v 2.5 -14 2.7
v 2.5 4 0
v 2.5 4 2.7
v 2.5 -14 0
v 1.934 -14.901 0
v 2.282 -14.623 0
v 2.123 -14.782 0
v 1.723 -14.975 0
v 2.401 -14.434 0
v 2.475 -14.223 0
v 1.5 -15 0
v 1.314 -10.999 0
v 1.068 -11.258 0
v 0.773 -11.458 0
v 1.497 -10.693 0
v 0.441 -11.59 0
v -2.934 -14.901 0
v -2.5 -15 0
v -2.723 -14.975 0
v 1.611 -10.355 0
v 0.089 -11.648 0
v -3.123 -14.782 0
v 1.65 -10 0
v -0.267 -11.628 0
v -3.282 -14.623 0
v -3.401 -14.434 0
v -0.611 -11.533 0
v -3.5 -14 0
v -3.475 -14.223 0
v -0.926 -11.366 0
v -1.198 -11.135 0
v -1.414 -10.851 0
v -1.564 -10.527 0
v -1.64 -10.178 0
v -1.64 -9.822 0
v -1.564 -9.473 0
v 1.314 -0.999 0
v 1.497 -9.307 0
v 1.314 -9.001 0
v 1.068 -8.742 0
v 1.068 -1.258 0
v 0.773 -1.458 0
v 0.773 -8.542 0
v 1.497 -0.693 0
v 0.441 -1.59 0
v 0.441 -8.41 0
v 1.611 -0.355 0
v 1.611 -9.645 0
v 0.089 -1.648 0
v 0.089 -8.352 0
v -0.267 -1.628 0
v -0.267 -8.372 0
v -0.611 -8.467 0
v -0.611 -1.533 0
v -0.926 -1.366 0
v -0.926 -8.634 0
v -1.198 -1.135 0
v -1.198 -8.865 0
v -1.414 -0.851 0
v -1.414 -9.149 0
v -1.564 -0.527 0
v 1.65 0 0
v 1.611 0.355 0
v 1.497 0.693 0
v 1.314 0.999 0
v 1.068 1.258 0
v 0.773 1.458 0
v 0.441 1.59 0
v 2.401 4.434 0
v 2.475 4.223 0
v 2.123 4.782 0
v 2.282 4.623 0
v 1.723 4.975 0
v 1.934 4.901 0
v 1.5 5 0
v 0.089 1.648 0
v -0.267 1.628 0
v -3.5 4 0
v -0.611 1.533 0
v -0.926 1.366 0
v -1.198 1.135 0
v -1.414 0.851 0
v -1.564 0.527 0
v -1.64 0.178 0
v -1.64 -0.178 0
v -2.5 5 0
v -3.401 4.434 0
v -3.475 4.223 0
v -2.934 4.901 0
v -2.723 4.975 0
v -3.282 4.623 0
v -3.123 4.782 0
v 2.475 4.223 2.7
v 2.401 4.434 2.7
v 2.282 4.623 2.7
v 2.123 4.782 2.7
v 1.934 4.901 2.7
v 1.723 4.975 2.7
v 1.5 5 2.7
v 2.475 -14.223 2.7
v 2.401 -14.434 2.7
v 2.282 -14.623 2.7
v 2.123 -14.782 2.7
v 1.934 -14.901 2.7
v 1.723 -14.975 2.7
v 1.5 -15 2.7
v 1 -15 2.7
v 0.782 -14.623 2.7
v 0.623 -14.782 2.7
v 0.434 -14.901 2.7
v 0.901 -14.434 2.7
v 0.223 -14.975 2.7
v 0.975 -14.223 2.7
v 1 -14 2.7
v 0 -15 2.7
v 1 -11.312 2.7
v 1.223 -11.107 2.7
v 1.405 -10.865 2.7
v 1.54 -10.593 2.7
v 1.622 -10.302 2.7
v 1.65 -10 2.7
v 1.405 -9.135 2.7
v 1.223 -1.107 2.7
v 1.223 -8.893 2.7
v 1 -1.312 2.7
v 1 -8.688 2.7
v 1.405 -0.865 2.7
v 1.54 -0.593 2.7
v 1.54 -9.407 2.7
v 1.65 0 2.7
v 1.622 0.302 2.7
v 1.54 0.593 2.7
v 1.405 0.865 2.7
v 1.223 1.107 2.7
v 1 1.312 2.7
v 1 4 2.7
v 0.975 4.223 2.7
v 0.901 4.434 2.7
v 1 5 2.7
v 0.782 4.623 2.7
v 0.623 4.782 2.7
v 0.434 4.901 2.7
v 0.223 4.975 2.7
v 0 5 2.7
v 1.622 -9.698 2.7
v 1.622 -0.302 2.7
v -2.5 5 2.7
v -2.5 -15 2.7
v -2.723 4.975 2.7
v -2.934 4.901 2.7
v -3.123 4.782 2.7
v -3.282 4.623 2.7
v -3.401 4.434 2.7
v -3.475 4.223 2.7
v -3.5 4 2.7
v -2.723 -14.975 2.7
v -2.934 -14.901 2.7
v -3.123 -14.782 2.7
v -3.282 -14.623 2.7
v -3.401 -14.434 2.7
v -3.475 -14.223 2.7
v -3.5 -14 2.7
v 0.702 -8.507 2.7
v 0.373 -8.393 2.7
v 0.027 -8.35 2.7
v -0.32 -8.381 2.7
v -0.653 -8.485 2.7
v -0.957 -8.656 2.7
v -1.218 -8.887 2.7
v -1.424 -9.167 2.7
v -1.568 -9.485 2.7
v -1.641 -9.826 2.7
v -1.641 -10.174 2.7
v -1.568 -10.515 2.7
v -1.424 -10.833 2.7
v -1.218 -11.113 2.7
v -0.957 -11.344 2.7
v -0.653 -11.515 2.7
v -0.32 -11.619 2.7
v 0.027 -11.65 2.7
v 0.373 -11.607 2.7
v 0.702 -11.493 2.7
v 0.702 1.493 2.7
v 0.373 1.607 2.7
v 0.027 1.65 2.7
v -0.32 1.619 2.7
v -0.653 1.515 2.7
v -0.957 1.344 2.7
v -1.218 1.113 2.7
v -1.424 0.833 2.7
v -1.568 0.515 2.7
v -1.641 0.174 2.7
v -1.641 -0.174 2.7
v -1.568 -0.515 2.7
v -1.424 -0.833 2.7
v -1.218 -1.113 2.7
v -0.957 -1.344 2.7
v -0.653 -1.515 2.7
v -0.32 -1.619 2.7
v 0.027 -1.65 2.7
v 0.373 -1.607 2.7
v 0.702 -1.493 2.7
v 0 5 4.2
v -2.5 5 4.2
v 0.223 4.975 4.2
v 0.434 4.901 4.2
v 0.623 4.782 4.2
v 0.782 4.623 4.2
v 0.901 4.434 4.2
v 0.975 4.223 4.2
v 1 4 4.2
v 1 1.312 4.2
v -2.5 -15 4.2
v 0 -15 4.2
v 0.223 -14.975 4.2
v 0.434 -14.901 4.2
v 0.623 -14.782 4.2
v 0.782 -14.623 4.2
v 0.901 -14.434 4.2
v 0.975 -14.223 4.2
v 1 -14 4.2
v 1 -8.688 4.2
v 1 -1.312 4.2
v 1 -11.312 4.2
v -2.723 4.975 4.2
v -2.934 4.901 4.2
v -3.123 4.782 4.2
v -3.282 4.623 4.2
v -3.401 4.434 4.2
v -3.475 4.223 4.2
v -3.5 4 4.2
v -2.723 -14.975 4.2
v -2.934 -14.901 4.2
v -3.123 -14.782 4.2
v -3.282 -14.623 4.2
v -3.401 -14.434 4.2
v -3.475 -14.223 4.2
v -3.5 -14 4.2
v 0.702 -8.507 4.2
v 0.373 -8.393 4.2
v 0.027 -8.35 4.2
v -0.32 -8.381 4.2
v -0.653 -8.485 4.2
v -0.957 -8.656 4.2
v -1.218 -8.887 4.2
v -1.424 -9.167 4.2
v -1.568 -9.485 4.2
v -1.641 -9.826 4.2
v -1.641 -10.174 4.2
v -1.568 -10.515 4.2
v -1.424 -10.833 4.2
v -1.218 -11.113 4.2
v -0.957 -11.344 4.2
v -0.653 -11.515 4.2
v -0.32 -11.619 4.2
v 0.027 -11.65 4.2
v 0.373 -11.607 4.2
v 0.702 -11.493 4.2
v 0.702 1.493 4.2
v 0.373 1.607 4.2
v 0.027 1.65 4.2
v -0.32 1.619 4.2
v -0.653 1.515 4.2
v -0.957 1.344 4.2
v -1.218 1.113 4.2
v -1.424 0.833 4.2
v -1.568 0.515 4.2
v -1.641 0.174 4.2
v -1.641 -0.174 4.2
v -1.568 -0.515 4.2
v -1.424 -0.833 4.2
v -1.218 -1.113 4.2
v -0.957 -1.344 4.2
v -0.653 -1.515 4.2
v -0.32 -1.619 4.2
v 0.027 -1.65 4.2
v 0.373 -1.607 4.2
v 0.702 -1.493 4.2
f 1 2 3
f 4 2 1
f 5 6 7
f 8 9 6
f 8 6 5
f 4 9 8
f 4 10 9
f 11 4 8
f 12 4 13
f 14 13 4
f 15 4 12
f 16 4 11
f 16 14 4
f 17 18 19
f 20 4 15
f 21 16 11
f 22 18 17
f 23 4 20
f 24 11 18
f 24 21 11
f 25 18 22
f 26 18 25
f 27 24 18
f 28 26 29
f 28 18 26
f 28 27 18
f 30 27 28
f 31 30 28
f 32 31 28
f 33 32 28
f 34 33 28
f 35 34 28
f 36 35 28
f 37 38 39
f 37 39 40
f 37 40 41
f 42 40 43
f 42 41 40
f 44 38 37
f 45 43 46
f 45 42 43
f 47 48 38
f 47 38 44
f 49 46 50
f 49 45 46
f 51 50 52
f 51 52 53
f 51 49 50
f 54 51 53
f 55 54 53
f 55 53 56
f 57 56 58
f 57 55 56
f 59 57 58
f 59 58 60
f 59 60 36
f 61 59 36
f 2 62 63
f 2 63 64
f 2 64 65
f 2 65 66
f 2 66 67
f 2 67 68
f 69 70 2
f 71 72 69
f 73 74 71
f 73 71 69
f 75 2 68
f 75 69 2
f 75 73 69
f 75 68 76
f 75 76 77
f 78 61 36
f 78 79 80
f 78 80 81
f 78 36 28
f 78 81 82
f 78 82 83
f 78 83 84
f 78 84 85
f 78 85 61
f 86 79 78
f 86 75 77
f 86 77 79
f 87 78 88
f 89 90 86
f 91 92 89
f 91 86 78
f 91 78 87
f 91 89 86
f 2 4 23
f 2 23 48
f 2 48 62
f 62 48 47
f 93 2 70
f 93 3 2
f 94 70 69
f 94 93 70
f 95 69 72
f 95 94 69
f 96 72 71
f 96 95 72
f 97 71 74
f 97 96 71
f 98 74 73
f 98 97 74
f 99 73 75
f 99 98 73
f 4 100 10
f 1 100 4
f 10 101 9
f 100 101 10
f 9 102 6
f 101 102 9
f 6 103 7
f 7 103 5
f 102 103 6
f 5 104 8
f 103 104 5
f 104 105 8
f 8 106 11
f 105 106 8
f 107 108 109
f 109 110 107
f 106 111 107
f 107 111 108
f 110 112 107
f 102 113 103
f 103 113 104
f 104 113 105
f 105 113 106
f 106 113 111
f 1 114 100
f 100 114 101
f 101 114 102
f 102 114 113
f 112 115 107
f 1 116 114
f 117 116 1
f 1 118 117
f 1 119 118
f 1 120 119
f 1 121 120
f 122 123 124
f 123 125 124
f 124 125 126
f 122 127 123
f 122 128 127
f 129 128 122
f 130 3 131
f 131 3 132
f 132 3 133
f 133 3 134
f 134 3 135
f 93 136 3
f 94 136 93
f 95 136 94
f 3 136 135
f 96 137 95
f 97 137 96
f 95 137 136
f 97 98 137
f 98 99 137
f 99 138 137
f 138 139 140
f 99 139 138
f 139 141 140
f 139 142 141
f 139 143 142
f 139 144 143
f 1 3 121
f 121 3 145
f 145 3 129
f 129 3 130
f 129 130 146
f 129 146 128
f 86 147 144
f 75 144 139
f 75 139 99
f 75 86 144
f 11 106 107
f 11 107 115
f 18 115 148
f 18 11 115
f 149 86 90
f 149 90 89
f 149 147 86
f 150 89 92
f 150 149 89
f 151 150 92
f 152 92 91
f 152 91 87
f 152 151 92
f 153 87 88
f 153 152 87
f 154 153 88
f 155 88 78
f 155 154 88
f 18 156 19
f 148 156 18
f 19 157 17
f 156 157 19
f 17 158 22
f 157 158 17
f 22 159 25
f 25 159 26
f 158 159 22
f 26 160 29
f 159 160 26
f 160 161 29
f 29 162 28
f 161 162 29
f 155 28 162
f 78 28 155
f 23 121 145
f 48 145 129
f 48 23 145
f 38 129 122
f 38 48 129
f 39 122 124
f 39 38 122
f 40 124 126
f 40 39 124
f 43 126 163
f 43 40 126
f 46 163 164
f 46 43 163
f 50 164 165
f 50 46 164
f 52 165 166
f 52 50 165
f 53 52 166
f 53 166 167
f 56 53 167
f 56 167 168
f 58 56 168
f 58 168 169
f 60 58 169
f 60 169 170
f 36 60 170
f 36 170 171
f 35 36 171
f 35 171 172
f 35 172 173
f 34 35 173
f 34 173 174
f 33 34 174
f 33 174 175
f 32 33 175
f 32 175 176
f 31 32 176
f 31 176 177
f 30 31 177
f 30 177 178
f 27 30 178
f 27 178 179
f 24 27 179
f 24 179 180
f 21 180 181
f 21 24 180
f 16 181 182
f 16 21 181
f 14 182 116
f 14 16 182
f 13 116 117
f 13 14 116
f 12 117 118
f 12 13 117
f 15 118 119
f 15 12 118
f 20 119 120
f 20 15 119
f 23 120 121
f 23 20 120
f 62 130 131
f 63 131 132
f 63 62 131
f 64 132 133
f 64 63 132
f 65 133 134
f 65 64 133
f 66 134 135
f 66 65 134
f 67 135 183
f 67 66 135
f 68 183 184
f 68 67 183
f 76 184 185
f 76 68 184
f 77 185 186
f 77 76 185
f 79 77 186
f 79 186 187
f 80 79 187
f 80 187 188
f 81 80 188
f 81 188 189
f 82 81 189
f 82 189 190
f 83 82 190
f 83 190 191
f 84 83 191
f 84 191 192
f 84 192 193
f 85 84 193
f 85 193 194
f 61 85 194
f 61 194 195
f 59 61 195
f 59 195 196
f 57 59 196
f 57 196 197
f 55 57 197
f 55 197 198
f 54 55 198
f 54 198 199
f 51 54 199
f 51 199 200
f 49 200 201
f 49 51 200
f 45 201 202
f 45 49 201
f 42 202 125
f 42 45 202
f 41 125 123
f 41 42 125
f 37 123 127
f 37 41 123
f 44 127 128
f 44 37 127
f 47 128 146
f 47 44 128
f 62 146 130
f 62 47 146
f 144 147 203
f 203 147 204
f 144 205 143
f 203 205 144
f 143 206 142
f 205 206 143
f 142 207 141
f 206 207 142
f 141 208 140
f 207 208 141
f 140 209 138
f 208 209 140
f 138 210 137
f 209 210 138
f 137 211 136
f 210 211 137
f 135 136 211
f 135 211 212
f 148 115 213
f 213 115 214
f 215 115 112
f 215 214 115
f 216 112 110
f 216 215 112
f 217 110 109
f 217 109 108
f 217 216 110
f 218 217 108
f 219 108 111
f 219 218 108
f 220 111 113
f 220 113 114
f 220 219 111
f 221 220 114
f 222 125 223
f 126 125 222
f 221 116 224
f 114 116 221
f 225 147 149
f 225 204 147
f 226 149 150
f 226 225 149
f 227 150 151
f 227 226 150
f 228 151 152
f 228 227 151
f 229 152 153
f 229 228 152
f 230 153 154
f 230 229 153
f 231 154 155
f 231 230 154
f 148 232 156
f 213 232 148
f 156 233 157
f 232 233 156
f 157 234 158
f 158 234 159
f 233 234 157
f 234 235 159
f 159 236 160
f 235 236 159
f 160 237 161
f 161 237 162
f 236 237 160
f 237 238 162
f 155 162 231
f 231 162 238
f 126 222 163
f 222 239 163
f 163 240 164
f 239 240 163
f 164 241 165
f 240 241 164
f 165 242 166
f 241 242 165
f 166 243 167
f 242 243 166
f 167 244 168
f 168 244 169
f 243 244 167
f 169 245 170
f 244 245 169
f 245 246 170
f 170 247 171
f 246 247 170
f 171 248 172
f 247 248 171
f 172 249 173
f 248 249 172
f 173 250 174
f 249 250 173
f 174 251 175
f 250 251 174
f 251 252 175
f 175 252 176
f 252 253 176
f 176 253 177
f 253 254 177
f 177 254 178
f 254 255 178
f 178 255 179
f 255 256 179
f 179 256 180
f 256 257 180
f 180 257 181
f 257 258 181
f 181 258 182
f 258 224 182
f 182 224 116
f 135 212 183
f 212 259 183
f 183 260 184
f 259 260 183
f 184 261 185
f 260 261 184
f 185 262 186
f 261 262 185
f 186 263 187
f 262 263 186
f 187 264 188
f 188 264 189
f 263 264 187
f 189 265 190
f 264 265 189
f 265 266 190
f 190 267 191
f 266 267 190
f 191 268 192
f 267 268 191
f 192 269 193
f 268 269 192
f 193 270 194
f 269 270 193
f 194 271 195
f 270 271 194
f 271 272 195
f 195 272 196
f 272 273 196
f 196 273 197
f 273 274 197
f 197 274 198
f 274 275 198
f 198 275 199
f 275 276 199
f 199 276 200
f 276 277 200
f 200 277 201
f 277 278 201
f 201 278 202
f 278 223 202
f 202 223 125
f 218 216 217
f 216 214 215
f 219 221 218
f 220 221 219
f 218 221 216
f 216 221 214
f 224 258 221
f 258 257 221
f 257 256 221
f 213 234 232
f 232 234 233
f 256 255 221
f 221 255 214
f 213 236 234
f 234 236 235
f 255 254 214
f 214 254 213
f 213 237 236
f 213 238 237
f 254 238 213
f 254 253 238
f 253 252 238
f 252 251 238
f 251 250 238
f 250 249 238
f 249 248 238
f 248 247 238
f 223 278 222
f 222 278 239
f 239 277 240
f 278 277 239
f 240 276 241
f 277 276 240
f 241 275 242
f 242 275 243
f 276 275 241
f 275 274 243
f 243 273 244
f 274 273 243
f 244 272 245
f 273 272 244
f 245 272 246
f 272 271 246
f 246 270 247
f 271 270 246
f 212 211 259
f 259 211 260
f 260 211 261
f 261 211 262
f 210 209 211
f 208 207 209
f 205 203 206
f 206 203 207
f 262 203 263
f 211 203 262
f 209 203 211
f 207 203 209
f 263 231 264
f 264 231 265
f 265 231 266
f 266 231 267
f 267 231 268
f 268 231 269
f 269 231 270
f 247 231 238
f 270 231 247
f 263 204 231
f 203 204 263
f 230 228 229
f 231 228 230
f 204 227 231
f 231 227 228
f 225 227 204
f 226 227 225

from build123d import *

# Parameters (mm, degrees)
SKETCH_W     = 6
SKETCH_H     = 20
SKETCH_R     = 1.65
PAD_DEPTH    = 2.7
SKETCH001_W  = 4.5
SKETCH001_H  = 20
PAD001_DEPTH = 1.5
SKETCH002_R  = 1.65
POCKET_DEPTH = 4.201
FILLET_R     = 1


with BuildPart() as part:
    # Sketch → Pad (new body)
    with BuildSketch(Plane.XY):
        with Locations((-0.5, -5)):
            Rectangle(SKETCH_W, SKETCH_H)
        Circle(SKETCH_R, mode=Mode.SUBTRACT)
        with Locations((0, -10)):
            Circle(SKETCH_R, mode=Mode.SUBTRACT)
    extrude(amount=PAD_DEPTH)

    # Sketch001 (on Face8 of Pad) → Pad001 (join)
    with BuildSketch(Plane.XY.offset(2.7)):
        with Locations((-1.25, -5)):
            Rectangle(SKETCH001_W, SKETCH001_H)
    extrude(amount=PAD001_DEPTH)

    # Sketch002 → Pocket (cut, through all)
    with BuildSketch(Plane.XY.offset(4.2)):
        Circle(SKETCH002_R)
        with Locations((0, -10)):
            Circle(SKETCH002_R)
    extrude(amount=-POCKET_DEPTH, mode=Mode.SUBTRACT)

    # Fillet
    fillet_edges = [part.edges().sort_by_distance(p)[0] for p in [
        (-3.5, -15, 3.45),
        (-3.5, -15, 1.35),
        (-3.5, 5, 3.45),
        (-3.5, 5, 1.35),
        (2.5, -15, 1.35),
        (1, -15, 3.45),
        (2.5, 5, 1.35),
        (1, 5, 3.45),
    ]]
    fillet(fillet_edges, radius=FILLET_R)


solid = part.part
